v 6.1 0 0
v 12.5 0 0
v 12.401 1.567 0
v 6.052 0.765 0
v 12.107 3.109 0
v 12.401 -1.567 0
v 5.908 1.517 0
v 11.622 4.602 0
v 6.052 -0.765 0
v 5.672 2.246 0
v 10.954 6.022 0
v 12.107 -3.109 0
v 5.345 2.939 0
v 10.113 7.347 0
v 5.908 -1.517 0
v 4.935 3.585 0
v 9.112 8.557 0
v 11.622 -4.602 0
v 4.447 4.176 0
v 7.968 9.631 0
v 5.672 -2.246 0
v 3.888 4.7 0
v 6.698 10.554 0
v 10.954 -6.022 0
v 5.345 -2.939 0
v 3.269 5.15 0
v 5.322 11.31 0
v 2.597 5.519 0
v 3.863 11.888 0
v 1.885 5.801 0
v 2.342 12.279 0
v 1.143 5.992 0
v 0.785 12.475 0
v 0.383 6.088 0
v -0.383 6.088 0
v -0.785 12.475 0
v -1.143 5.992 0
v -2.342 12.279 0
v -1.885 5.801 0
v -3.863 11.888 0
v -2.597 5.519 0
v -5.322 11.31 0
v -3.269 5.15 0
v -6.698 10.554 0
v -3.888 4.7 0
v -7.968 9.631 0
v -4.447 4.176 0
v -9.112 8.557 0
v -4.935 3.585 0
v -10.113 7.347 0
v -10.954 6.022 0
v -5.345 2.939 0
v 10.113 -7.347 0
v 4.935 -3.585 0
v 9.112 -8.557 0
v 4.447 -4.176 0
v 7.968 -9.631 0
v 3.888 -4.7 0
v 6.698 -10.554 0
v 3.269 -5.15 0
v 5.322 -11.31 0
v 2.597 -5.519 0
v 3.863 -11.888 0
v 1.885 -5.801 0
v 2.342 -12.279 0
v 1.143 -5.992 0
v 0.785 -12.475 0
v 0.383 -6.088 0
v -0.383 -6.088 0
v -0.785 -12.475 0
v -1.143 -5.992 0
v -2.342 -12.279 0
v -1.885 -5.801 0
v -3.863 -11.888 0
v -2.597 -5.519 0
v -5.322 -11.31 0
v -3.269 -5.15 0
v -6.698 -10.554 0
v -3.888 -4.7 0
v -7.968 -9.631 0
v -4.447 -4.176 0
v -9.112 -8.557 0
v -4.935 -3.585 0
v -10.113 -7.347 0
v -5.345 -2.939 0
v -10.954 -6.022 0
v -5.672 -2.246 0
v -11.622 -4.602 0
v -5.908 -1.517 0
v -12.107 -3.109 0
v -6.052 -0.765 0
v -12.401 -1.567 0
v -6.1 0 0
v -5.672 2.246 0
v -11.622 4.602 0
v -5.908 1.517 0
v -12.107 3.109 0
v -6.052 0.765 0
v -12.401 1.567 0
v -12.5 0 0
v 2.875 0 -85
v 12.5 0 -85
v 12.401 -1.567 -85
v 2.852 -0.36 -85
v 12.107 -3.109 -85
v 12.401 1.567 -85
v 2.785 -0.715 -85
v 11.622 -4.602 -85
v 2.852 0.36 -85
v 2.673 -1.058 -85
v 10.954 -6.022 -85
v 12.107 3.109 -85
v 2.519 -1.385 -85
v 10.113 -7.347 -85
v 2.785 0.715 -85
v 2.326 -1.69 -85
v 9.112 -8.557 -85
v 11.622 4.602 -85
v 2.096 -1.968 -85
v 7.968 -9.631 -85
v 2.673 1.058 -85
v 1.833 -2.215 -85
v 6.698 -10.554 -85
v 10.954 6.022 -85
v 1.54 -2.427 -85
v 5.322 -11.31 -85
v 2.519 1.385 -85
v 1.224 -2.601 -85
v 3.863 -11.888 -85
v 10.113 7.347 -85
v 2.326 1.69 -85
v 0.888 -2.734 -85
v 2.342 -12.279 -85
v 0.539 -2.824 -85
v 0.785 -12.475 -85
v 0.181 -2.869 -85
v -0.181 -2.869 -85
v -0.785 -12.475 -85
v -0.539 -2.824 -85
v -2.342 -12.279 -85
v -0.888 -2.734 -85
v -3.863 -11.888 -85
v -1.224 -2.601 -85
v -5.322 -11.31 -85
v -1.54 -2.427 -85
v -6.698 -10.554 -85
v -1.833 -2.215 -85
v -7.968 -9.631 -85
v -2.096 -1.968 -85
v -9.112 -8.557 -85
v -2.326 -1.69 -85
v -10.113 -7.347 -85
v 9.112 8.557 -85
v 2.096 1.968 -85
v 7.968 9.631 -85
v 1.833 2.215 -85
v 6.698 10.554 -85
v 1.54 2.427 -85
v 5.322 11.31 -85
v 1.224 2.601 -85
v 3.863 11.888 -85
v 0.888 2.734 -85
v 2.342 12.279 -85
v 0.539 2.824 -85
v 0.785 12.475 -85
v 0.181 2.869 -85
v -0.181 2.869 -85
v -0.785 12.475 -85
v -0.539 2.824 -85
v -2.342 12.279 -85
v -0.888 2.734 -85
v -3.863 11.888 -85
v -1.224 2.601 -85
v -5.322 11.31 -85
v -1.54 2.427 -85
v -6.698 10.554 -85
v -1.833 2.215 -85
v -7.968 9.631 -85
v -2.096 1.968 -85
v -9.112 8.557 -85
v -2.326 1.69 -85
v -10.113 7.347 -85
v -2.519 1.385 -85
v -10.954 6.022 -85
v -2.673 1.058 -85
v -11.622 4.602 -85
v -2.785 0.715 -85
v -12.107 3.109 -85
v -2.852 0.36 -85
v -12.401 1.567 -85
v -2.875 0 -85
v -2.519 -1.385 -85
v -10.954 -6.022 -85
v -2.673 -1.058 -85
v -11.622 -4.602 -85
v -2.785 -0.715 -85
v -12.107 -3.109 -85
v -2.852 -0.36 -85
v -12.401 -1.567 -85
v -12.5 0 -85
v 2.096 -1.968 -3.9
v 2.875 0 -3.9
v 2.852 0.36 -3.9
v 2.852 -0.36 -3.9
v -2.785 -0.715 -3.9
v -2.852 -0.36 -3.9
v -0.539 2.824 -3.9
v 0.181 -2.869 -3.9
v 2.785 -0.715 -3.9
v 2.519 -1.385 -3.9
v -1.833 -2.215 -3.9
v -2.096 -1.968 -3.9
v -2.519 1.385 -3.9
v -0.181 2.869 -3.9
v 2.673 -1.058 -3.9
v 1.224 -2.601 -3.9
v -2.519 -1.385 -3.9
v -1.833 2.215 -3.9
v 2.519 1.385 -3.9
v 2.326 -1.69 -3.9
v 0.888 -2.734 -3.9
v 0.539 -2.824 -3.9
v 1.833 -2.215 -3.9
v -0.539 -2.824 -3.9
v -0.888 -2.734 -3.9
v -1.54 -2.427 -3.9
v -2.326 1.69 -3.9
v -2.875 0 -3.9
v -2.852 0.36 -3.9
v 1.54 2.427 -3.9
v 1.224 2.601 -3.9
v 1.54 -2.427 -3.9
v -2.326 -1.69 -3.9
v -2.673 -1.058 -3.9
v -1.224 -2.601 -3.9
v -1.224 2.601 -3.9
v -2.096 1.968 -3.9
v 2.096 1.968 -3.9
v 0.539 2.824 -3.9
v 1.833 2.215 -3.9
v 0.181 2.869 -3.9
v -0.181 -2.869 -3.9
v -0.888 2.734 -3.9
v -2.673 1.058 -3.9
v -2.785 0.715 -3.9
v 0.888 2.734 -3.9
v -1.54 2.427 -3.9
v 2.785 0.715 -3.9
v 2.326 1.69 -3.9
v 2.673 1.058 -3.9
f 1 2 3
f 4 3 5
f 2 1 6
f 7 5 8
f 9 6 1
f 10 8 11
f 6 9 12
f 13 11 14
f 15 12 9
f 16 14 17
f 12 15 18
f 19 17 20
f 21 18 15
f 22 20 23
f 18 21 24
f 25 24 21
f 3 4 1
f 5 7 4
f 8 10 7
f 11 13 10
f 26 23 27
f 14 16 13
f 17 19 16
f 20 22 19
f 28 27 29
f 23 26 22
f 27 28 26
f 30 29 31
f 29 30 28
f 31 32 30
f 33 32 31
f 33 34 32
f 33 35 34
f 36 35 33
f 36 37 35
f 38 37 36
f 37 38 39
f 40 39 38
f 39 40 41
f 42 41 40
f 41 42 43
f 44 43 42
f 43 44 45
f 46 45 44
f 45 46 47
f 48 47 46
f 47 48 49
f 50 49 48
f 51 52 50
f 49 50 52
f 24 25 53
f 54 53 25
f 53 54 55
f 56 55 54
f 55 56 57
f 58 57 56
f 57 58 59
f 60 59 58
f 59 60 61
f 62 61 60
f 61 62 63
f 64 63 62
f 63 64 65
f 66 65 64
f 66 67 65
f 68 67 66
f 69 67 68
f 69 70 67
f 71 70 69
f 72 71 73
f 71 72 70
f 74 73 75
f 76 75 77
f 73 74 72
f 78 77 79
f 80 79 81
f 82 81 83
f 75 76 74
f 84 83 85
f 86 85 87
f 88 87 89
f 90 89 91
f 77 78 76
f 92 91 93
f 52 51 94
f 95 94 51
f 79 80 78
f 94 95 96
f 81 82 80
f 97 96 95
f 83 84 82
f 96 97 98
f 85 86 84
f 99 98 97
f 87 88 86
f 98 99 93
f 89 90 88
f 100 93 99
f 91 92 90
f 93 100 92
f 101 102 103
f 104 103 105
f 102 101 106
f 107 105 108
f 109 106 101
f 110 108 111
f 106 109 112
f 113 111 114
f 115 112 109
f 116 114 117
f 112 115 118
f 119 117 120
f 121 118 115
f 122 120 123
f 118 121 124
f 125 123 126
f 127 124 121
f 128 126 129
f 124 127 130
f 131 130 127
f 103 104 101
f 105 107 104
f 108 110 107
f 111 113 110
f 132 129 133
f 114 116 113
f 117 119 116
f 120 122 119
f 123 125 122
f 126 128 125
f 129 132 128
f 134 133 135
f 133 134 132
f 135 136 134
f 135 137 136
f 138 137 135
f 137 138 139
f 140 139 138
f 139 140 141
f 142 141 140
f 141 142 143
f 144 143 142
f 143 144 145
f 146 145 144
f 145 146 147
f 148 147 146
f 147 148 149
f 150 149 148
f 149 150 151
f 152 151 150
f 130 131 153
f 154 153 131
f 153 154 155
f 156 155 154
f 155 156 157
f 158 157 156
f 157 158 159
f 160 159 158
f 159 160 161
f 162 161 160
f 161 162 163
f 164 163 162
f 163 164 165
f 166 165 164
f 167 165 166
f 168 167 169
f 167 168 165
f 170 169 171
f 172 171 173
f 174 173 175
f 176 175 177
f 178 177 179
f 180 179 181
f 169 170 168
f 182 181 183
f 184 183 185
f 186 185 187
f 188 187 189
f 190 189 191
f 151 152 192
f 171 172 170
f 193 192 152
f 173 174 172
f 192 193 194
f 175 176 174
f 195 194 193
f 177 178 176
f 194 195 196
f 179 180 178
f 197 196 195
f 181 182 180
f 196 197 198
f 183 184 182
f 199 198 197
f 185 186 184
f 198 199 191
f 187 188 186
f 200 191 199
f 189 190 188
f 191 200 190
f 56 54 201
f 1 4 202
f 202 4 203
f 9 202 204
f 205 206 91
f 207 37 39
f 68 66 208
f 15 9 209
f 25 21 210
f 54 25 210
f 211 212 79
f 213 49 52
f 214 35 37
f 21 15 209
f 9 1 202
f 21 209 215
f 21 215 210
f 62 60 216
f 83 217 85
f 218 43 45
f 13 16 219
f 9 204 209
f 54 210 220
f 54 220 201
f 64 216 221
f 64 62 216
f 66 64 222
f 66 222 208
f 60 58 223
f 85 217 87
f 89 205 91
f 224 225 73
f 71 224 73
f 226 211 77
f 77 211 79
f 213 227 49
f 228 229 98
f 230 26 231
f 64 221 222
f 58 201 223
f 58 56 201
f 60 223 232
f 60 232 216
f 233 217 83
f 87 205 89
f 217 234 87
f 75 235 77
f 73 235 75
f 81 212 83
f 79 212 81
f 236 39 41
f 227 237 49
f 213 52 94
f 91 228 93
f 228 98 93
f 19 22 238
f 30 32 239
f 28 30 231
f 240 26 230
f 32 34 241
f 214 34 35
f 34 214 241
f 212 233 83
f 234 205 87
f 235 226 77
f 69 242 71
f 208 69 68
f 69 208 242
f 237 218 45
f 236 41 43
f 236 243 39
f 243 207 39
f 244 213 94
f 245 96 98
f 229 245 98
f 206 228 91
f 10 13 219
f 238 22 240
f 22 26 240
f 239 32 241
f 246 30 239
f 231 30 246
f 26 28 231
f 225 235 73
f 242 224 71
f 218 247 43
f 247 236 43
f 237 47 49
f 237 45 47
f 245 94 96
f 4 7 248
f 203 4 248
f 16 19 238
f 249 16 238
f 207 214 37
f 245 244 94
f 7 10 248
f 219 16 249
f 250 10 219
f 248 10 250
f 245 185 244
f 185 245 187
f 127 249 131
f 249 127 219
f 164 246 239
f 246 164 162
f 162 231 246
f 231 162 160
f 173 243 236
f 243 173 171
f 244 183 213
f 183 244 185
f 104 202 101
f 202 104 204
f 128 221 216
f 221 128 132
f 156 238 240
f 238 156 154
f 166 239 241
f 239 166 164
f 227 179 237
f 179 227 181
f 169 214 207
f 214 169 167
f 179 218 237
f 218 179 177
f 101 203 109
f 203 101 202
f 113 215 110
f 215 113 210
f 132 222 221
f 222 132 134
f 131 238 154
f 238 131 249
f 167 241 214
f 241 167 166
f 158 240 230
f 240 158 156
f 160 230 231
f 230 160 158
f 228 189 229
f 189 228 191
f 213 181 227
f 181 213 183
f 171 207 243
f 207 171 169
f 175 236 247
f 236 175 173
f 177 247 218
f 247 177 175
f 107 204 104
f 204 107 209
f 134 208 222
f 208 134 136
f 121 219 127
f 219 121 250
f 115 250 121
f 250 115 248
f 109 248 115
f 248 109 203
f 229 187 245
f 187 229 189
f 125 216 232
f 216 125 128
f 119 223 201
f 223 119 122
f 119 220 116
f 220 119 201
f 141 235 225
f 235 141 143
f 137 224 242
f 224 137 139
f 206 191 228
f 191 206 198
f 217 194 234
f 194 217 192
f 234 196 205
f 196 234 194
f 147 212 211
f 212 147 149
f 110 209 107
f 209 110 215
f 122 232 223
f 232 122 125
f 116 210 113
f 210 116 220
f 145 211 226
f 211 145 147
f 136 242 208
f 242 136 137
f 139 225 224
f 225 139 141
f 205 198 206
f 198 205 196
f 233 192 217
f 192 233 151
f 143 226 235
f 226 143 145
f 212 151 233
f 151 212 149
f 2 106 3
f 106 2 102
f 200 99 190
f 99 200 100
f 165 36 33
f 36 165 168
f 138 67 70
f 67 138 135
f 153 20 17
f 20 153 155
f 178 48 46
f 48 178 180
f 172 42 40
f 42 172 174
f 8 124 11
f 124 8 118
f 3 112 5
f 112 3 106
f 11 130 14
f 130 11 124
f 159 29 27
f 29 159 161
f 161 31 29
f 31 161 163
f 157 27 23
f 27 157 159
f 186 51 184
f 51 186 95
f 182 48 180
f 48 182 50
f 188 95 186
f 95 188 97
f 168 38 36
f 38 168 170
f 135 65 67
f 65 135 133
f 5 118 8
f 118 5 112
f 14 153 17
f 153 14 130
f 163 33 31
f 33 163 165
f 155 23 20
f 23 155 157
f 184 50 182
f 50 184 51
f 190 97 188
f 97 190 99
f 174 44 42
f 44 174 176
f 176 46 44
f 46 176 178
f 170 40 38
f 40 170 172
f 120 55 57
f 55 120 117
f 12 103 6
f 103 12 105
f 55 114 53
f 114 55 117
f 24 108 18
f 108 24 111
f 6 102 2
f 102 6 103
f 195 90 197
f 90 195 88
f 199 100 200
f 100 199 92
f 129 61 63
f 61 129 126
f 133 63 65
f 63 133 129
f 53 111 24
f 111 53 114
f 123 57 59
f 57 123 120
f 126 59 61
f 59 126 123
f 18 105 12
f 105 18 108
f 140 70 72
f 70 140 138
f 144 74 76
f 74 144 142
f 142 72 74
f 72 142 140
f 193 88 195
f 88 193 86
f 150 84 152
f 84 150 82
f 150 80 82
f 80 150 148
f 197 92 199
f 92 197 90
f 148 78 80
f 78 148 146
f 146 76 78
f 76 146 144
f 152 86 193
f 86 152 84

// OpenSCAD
$fn = 50;


difference() {
	union() {
		translate(v = [0, 0, -85.0000000000]) {
			cylinder(h = 85, r = 12.5000000000);
		}
	}
	union() {
		translate(v = [0, 0, 0]) {
			rotate(a = [0, 0, 0]) {
				difference() {
					union() {
						translate(v = [0, 0, -85.0000000000]) {
							cylinder(h = 85, r = 2.6000000000);
						}
						translate(v = [0, 0, -3.9000000000]) {
							cylinder(h = 3.9000000000, r = 12.5000000000, r1 = 2.8750000000, r2 = 6.1000000000);
						}
						translate(v = [0, 0, -85.0000000000]) {
							cylinder(h = 85, r = 2.8750000000);
						}
						translate(v = [0, 0, -85.0000000000]) {
							cylinder(h = 85, r = 2.6000000000);
						}
					}
					union();
				}
			}
		}
	}
}
